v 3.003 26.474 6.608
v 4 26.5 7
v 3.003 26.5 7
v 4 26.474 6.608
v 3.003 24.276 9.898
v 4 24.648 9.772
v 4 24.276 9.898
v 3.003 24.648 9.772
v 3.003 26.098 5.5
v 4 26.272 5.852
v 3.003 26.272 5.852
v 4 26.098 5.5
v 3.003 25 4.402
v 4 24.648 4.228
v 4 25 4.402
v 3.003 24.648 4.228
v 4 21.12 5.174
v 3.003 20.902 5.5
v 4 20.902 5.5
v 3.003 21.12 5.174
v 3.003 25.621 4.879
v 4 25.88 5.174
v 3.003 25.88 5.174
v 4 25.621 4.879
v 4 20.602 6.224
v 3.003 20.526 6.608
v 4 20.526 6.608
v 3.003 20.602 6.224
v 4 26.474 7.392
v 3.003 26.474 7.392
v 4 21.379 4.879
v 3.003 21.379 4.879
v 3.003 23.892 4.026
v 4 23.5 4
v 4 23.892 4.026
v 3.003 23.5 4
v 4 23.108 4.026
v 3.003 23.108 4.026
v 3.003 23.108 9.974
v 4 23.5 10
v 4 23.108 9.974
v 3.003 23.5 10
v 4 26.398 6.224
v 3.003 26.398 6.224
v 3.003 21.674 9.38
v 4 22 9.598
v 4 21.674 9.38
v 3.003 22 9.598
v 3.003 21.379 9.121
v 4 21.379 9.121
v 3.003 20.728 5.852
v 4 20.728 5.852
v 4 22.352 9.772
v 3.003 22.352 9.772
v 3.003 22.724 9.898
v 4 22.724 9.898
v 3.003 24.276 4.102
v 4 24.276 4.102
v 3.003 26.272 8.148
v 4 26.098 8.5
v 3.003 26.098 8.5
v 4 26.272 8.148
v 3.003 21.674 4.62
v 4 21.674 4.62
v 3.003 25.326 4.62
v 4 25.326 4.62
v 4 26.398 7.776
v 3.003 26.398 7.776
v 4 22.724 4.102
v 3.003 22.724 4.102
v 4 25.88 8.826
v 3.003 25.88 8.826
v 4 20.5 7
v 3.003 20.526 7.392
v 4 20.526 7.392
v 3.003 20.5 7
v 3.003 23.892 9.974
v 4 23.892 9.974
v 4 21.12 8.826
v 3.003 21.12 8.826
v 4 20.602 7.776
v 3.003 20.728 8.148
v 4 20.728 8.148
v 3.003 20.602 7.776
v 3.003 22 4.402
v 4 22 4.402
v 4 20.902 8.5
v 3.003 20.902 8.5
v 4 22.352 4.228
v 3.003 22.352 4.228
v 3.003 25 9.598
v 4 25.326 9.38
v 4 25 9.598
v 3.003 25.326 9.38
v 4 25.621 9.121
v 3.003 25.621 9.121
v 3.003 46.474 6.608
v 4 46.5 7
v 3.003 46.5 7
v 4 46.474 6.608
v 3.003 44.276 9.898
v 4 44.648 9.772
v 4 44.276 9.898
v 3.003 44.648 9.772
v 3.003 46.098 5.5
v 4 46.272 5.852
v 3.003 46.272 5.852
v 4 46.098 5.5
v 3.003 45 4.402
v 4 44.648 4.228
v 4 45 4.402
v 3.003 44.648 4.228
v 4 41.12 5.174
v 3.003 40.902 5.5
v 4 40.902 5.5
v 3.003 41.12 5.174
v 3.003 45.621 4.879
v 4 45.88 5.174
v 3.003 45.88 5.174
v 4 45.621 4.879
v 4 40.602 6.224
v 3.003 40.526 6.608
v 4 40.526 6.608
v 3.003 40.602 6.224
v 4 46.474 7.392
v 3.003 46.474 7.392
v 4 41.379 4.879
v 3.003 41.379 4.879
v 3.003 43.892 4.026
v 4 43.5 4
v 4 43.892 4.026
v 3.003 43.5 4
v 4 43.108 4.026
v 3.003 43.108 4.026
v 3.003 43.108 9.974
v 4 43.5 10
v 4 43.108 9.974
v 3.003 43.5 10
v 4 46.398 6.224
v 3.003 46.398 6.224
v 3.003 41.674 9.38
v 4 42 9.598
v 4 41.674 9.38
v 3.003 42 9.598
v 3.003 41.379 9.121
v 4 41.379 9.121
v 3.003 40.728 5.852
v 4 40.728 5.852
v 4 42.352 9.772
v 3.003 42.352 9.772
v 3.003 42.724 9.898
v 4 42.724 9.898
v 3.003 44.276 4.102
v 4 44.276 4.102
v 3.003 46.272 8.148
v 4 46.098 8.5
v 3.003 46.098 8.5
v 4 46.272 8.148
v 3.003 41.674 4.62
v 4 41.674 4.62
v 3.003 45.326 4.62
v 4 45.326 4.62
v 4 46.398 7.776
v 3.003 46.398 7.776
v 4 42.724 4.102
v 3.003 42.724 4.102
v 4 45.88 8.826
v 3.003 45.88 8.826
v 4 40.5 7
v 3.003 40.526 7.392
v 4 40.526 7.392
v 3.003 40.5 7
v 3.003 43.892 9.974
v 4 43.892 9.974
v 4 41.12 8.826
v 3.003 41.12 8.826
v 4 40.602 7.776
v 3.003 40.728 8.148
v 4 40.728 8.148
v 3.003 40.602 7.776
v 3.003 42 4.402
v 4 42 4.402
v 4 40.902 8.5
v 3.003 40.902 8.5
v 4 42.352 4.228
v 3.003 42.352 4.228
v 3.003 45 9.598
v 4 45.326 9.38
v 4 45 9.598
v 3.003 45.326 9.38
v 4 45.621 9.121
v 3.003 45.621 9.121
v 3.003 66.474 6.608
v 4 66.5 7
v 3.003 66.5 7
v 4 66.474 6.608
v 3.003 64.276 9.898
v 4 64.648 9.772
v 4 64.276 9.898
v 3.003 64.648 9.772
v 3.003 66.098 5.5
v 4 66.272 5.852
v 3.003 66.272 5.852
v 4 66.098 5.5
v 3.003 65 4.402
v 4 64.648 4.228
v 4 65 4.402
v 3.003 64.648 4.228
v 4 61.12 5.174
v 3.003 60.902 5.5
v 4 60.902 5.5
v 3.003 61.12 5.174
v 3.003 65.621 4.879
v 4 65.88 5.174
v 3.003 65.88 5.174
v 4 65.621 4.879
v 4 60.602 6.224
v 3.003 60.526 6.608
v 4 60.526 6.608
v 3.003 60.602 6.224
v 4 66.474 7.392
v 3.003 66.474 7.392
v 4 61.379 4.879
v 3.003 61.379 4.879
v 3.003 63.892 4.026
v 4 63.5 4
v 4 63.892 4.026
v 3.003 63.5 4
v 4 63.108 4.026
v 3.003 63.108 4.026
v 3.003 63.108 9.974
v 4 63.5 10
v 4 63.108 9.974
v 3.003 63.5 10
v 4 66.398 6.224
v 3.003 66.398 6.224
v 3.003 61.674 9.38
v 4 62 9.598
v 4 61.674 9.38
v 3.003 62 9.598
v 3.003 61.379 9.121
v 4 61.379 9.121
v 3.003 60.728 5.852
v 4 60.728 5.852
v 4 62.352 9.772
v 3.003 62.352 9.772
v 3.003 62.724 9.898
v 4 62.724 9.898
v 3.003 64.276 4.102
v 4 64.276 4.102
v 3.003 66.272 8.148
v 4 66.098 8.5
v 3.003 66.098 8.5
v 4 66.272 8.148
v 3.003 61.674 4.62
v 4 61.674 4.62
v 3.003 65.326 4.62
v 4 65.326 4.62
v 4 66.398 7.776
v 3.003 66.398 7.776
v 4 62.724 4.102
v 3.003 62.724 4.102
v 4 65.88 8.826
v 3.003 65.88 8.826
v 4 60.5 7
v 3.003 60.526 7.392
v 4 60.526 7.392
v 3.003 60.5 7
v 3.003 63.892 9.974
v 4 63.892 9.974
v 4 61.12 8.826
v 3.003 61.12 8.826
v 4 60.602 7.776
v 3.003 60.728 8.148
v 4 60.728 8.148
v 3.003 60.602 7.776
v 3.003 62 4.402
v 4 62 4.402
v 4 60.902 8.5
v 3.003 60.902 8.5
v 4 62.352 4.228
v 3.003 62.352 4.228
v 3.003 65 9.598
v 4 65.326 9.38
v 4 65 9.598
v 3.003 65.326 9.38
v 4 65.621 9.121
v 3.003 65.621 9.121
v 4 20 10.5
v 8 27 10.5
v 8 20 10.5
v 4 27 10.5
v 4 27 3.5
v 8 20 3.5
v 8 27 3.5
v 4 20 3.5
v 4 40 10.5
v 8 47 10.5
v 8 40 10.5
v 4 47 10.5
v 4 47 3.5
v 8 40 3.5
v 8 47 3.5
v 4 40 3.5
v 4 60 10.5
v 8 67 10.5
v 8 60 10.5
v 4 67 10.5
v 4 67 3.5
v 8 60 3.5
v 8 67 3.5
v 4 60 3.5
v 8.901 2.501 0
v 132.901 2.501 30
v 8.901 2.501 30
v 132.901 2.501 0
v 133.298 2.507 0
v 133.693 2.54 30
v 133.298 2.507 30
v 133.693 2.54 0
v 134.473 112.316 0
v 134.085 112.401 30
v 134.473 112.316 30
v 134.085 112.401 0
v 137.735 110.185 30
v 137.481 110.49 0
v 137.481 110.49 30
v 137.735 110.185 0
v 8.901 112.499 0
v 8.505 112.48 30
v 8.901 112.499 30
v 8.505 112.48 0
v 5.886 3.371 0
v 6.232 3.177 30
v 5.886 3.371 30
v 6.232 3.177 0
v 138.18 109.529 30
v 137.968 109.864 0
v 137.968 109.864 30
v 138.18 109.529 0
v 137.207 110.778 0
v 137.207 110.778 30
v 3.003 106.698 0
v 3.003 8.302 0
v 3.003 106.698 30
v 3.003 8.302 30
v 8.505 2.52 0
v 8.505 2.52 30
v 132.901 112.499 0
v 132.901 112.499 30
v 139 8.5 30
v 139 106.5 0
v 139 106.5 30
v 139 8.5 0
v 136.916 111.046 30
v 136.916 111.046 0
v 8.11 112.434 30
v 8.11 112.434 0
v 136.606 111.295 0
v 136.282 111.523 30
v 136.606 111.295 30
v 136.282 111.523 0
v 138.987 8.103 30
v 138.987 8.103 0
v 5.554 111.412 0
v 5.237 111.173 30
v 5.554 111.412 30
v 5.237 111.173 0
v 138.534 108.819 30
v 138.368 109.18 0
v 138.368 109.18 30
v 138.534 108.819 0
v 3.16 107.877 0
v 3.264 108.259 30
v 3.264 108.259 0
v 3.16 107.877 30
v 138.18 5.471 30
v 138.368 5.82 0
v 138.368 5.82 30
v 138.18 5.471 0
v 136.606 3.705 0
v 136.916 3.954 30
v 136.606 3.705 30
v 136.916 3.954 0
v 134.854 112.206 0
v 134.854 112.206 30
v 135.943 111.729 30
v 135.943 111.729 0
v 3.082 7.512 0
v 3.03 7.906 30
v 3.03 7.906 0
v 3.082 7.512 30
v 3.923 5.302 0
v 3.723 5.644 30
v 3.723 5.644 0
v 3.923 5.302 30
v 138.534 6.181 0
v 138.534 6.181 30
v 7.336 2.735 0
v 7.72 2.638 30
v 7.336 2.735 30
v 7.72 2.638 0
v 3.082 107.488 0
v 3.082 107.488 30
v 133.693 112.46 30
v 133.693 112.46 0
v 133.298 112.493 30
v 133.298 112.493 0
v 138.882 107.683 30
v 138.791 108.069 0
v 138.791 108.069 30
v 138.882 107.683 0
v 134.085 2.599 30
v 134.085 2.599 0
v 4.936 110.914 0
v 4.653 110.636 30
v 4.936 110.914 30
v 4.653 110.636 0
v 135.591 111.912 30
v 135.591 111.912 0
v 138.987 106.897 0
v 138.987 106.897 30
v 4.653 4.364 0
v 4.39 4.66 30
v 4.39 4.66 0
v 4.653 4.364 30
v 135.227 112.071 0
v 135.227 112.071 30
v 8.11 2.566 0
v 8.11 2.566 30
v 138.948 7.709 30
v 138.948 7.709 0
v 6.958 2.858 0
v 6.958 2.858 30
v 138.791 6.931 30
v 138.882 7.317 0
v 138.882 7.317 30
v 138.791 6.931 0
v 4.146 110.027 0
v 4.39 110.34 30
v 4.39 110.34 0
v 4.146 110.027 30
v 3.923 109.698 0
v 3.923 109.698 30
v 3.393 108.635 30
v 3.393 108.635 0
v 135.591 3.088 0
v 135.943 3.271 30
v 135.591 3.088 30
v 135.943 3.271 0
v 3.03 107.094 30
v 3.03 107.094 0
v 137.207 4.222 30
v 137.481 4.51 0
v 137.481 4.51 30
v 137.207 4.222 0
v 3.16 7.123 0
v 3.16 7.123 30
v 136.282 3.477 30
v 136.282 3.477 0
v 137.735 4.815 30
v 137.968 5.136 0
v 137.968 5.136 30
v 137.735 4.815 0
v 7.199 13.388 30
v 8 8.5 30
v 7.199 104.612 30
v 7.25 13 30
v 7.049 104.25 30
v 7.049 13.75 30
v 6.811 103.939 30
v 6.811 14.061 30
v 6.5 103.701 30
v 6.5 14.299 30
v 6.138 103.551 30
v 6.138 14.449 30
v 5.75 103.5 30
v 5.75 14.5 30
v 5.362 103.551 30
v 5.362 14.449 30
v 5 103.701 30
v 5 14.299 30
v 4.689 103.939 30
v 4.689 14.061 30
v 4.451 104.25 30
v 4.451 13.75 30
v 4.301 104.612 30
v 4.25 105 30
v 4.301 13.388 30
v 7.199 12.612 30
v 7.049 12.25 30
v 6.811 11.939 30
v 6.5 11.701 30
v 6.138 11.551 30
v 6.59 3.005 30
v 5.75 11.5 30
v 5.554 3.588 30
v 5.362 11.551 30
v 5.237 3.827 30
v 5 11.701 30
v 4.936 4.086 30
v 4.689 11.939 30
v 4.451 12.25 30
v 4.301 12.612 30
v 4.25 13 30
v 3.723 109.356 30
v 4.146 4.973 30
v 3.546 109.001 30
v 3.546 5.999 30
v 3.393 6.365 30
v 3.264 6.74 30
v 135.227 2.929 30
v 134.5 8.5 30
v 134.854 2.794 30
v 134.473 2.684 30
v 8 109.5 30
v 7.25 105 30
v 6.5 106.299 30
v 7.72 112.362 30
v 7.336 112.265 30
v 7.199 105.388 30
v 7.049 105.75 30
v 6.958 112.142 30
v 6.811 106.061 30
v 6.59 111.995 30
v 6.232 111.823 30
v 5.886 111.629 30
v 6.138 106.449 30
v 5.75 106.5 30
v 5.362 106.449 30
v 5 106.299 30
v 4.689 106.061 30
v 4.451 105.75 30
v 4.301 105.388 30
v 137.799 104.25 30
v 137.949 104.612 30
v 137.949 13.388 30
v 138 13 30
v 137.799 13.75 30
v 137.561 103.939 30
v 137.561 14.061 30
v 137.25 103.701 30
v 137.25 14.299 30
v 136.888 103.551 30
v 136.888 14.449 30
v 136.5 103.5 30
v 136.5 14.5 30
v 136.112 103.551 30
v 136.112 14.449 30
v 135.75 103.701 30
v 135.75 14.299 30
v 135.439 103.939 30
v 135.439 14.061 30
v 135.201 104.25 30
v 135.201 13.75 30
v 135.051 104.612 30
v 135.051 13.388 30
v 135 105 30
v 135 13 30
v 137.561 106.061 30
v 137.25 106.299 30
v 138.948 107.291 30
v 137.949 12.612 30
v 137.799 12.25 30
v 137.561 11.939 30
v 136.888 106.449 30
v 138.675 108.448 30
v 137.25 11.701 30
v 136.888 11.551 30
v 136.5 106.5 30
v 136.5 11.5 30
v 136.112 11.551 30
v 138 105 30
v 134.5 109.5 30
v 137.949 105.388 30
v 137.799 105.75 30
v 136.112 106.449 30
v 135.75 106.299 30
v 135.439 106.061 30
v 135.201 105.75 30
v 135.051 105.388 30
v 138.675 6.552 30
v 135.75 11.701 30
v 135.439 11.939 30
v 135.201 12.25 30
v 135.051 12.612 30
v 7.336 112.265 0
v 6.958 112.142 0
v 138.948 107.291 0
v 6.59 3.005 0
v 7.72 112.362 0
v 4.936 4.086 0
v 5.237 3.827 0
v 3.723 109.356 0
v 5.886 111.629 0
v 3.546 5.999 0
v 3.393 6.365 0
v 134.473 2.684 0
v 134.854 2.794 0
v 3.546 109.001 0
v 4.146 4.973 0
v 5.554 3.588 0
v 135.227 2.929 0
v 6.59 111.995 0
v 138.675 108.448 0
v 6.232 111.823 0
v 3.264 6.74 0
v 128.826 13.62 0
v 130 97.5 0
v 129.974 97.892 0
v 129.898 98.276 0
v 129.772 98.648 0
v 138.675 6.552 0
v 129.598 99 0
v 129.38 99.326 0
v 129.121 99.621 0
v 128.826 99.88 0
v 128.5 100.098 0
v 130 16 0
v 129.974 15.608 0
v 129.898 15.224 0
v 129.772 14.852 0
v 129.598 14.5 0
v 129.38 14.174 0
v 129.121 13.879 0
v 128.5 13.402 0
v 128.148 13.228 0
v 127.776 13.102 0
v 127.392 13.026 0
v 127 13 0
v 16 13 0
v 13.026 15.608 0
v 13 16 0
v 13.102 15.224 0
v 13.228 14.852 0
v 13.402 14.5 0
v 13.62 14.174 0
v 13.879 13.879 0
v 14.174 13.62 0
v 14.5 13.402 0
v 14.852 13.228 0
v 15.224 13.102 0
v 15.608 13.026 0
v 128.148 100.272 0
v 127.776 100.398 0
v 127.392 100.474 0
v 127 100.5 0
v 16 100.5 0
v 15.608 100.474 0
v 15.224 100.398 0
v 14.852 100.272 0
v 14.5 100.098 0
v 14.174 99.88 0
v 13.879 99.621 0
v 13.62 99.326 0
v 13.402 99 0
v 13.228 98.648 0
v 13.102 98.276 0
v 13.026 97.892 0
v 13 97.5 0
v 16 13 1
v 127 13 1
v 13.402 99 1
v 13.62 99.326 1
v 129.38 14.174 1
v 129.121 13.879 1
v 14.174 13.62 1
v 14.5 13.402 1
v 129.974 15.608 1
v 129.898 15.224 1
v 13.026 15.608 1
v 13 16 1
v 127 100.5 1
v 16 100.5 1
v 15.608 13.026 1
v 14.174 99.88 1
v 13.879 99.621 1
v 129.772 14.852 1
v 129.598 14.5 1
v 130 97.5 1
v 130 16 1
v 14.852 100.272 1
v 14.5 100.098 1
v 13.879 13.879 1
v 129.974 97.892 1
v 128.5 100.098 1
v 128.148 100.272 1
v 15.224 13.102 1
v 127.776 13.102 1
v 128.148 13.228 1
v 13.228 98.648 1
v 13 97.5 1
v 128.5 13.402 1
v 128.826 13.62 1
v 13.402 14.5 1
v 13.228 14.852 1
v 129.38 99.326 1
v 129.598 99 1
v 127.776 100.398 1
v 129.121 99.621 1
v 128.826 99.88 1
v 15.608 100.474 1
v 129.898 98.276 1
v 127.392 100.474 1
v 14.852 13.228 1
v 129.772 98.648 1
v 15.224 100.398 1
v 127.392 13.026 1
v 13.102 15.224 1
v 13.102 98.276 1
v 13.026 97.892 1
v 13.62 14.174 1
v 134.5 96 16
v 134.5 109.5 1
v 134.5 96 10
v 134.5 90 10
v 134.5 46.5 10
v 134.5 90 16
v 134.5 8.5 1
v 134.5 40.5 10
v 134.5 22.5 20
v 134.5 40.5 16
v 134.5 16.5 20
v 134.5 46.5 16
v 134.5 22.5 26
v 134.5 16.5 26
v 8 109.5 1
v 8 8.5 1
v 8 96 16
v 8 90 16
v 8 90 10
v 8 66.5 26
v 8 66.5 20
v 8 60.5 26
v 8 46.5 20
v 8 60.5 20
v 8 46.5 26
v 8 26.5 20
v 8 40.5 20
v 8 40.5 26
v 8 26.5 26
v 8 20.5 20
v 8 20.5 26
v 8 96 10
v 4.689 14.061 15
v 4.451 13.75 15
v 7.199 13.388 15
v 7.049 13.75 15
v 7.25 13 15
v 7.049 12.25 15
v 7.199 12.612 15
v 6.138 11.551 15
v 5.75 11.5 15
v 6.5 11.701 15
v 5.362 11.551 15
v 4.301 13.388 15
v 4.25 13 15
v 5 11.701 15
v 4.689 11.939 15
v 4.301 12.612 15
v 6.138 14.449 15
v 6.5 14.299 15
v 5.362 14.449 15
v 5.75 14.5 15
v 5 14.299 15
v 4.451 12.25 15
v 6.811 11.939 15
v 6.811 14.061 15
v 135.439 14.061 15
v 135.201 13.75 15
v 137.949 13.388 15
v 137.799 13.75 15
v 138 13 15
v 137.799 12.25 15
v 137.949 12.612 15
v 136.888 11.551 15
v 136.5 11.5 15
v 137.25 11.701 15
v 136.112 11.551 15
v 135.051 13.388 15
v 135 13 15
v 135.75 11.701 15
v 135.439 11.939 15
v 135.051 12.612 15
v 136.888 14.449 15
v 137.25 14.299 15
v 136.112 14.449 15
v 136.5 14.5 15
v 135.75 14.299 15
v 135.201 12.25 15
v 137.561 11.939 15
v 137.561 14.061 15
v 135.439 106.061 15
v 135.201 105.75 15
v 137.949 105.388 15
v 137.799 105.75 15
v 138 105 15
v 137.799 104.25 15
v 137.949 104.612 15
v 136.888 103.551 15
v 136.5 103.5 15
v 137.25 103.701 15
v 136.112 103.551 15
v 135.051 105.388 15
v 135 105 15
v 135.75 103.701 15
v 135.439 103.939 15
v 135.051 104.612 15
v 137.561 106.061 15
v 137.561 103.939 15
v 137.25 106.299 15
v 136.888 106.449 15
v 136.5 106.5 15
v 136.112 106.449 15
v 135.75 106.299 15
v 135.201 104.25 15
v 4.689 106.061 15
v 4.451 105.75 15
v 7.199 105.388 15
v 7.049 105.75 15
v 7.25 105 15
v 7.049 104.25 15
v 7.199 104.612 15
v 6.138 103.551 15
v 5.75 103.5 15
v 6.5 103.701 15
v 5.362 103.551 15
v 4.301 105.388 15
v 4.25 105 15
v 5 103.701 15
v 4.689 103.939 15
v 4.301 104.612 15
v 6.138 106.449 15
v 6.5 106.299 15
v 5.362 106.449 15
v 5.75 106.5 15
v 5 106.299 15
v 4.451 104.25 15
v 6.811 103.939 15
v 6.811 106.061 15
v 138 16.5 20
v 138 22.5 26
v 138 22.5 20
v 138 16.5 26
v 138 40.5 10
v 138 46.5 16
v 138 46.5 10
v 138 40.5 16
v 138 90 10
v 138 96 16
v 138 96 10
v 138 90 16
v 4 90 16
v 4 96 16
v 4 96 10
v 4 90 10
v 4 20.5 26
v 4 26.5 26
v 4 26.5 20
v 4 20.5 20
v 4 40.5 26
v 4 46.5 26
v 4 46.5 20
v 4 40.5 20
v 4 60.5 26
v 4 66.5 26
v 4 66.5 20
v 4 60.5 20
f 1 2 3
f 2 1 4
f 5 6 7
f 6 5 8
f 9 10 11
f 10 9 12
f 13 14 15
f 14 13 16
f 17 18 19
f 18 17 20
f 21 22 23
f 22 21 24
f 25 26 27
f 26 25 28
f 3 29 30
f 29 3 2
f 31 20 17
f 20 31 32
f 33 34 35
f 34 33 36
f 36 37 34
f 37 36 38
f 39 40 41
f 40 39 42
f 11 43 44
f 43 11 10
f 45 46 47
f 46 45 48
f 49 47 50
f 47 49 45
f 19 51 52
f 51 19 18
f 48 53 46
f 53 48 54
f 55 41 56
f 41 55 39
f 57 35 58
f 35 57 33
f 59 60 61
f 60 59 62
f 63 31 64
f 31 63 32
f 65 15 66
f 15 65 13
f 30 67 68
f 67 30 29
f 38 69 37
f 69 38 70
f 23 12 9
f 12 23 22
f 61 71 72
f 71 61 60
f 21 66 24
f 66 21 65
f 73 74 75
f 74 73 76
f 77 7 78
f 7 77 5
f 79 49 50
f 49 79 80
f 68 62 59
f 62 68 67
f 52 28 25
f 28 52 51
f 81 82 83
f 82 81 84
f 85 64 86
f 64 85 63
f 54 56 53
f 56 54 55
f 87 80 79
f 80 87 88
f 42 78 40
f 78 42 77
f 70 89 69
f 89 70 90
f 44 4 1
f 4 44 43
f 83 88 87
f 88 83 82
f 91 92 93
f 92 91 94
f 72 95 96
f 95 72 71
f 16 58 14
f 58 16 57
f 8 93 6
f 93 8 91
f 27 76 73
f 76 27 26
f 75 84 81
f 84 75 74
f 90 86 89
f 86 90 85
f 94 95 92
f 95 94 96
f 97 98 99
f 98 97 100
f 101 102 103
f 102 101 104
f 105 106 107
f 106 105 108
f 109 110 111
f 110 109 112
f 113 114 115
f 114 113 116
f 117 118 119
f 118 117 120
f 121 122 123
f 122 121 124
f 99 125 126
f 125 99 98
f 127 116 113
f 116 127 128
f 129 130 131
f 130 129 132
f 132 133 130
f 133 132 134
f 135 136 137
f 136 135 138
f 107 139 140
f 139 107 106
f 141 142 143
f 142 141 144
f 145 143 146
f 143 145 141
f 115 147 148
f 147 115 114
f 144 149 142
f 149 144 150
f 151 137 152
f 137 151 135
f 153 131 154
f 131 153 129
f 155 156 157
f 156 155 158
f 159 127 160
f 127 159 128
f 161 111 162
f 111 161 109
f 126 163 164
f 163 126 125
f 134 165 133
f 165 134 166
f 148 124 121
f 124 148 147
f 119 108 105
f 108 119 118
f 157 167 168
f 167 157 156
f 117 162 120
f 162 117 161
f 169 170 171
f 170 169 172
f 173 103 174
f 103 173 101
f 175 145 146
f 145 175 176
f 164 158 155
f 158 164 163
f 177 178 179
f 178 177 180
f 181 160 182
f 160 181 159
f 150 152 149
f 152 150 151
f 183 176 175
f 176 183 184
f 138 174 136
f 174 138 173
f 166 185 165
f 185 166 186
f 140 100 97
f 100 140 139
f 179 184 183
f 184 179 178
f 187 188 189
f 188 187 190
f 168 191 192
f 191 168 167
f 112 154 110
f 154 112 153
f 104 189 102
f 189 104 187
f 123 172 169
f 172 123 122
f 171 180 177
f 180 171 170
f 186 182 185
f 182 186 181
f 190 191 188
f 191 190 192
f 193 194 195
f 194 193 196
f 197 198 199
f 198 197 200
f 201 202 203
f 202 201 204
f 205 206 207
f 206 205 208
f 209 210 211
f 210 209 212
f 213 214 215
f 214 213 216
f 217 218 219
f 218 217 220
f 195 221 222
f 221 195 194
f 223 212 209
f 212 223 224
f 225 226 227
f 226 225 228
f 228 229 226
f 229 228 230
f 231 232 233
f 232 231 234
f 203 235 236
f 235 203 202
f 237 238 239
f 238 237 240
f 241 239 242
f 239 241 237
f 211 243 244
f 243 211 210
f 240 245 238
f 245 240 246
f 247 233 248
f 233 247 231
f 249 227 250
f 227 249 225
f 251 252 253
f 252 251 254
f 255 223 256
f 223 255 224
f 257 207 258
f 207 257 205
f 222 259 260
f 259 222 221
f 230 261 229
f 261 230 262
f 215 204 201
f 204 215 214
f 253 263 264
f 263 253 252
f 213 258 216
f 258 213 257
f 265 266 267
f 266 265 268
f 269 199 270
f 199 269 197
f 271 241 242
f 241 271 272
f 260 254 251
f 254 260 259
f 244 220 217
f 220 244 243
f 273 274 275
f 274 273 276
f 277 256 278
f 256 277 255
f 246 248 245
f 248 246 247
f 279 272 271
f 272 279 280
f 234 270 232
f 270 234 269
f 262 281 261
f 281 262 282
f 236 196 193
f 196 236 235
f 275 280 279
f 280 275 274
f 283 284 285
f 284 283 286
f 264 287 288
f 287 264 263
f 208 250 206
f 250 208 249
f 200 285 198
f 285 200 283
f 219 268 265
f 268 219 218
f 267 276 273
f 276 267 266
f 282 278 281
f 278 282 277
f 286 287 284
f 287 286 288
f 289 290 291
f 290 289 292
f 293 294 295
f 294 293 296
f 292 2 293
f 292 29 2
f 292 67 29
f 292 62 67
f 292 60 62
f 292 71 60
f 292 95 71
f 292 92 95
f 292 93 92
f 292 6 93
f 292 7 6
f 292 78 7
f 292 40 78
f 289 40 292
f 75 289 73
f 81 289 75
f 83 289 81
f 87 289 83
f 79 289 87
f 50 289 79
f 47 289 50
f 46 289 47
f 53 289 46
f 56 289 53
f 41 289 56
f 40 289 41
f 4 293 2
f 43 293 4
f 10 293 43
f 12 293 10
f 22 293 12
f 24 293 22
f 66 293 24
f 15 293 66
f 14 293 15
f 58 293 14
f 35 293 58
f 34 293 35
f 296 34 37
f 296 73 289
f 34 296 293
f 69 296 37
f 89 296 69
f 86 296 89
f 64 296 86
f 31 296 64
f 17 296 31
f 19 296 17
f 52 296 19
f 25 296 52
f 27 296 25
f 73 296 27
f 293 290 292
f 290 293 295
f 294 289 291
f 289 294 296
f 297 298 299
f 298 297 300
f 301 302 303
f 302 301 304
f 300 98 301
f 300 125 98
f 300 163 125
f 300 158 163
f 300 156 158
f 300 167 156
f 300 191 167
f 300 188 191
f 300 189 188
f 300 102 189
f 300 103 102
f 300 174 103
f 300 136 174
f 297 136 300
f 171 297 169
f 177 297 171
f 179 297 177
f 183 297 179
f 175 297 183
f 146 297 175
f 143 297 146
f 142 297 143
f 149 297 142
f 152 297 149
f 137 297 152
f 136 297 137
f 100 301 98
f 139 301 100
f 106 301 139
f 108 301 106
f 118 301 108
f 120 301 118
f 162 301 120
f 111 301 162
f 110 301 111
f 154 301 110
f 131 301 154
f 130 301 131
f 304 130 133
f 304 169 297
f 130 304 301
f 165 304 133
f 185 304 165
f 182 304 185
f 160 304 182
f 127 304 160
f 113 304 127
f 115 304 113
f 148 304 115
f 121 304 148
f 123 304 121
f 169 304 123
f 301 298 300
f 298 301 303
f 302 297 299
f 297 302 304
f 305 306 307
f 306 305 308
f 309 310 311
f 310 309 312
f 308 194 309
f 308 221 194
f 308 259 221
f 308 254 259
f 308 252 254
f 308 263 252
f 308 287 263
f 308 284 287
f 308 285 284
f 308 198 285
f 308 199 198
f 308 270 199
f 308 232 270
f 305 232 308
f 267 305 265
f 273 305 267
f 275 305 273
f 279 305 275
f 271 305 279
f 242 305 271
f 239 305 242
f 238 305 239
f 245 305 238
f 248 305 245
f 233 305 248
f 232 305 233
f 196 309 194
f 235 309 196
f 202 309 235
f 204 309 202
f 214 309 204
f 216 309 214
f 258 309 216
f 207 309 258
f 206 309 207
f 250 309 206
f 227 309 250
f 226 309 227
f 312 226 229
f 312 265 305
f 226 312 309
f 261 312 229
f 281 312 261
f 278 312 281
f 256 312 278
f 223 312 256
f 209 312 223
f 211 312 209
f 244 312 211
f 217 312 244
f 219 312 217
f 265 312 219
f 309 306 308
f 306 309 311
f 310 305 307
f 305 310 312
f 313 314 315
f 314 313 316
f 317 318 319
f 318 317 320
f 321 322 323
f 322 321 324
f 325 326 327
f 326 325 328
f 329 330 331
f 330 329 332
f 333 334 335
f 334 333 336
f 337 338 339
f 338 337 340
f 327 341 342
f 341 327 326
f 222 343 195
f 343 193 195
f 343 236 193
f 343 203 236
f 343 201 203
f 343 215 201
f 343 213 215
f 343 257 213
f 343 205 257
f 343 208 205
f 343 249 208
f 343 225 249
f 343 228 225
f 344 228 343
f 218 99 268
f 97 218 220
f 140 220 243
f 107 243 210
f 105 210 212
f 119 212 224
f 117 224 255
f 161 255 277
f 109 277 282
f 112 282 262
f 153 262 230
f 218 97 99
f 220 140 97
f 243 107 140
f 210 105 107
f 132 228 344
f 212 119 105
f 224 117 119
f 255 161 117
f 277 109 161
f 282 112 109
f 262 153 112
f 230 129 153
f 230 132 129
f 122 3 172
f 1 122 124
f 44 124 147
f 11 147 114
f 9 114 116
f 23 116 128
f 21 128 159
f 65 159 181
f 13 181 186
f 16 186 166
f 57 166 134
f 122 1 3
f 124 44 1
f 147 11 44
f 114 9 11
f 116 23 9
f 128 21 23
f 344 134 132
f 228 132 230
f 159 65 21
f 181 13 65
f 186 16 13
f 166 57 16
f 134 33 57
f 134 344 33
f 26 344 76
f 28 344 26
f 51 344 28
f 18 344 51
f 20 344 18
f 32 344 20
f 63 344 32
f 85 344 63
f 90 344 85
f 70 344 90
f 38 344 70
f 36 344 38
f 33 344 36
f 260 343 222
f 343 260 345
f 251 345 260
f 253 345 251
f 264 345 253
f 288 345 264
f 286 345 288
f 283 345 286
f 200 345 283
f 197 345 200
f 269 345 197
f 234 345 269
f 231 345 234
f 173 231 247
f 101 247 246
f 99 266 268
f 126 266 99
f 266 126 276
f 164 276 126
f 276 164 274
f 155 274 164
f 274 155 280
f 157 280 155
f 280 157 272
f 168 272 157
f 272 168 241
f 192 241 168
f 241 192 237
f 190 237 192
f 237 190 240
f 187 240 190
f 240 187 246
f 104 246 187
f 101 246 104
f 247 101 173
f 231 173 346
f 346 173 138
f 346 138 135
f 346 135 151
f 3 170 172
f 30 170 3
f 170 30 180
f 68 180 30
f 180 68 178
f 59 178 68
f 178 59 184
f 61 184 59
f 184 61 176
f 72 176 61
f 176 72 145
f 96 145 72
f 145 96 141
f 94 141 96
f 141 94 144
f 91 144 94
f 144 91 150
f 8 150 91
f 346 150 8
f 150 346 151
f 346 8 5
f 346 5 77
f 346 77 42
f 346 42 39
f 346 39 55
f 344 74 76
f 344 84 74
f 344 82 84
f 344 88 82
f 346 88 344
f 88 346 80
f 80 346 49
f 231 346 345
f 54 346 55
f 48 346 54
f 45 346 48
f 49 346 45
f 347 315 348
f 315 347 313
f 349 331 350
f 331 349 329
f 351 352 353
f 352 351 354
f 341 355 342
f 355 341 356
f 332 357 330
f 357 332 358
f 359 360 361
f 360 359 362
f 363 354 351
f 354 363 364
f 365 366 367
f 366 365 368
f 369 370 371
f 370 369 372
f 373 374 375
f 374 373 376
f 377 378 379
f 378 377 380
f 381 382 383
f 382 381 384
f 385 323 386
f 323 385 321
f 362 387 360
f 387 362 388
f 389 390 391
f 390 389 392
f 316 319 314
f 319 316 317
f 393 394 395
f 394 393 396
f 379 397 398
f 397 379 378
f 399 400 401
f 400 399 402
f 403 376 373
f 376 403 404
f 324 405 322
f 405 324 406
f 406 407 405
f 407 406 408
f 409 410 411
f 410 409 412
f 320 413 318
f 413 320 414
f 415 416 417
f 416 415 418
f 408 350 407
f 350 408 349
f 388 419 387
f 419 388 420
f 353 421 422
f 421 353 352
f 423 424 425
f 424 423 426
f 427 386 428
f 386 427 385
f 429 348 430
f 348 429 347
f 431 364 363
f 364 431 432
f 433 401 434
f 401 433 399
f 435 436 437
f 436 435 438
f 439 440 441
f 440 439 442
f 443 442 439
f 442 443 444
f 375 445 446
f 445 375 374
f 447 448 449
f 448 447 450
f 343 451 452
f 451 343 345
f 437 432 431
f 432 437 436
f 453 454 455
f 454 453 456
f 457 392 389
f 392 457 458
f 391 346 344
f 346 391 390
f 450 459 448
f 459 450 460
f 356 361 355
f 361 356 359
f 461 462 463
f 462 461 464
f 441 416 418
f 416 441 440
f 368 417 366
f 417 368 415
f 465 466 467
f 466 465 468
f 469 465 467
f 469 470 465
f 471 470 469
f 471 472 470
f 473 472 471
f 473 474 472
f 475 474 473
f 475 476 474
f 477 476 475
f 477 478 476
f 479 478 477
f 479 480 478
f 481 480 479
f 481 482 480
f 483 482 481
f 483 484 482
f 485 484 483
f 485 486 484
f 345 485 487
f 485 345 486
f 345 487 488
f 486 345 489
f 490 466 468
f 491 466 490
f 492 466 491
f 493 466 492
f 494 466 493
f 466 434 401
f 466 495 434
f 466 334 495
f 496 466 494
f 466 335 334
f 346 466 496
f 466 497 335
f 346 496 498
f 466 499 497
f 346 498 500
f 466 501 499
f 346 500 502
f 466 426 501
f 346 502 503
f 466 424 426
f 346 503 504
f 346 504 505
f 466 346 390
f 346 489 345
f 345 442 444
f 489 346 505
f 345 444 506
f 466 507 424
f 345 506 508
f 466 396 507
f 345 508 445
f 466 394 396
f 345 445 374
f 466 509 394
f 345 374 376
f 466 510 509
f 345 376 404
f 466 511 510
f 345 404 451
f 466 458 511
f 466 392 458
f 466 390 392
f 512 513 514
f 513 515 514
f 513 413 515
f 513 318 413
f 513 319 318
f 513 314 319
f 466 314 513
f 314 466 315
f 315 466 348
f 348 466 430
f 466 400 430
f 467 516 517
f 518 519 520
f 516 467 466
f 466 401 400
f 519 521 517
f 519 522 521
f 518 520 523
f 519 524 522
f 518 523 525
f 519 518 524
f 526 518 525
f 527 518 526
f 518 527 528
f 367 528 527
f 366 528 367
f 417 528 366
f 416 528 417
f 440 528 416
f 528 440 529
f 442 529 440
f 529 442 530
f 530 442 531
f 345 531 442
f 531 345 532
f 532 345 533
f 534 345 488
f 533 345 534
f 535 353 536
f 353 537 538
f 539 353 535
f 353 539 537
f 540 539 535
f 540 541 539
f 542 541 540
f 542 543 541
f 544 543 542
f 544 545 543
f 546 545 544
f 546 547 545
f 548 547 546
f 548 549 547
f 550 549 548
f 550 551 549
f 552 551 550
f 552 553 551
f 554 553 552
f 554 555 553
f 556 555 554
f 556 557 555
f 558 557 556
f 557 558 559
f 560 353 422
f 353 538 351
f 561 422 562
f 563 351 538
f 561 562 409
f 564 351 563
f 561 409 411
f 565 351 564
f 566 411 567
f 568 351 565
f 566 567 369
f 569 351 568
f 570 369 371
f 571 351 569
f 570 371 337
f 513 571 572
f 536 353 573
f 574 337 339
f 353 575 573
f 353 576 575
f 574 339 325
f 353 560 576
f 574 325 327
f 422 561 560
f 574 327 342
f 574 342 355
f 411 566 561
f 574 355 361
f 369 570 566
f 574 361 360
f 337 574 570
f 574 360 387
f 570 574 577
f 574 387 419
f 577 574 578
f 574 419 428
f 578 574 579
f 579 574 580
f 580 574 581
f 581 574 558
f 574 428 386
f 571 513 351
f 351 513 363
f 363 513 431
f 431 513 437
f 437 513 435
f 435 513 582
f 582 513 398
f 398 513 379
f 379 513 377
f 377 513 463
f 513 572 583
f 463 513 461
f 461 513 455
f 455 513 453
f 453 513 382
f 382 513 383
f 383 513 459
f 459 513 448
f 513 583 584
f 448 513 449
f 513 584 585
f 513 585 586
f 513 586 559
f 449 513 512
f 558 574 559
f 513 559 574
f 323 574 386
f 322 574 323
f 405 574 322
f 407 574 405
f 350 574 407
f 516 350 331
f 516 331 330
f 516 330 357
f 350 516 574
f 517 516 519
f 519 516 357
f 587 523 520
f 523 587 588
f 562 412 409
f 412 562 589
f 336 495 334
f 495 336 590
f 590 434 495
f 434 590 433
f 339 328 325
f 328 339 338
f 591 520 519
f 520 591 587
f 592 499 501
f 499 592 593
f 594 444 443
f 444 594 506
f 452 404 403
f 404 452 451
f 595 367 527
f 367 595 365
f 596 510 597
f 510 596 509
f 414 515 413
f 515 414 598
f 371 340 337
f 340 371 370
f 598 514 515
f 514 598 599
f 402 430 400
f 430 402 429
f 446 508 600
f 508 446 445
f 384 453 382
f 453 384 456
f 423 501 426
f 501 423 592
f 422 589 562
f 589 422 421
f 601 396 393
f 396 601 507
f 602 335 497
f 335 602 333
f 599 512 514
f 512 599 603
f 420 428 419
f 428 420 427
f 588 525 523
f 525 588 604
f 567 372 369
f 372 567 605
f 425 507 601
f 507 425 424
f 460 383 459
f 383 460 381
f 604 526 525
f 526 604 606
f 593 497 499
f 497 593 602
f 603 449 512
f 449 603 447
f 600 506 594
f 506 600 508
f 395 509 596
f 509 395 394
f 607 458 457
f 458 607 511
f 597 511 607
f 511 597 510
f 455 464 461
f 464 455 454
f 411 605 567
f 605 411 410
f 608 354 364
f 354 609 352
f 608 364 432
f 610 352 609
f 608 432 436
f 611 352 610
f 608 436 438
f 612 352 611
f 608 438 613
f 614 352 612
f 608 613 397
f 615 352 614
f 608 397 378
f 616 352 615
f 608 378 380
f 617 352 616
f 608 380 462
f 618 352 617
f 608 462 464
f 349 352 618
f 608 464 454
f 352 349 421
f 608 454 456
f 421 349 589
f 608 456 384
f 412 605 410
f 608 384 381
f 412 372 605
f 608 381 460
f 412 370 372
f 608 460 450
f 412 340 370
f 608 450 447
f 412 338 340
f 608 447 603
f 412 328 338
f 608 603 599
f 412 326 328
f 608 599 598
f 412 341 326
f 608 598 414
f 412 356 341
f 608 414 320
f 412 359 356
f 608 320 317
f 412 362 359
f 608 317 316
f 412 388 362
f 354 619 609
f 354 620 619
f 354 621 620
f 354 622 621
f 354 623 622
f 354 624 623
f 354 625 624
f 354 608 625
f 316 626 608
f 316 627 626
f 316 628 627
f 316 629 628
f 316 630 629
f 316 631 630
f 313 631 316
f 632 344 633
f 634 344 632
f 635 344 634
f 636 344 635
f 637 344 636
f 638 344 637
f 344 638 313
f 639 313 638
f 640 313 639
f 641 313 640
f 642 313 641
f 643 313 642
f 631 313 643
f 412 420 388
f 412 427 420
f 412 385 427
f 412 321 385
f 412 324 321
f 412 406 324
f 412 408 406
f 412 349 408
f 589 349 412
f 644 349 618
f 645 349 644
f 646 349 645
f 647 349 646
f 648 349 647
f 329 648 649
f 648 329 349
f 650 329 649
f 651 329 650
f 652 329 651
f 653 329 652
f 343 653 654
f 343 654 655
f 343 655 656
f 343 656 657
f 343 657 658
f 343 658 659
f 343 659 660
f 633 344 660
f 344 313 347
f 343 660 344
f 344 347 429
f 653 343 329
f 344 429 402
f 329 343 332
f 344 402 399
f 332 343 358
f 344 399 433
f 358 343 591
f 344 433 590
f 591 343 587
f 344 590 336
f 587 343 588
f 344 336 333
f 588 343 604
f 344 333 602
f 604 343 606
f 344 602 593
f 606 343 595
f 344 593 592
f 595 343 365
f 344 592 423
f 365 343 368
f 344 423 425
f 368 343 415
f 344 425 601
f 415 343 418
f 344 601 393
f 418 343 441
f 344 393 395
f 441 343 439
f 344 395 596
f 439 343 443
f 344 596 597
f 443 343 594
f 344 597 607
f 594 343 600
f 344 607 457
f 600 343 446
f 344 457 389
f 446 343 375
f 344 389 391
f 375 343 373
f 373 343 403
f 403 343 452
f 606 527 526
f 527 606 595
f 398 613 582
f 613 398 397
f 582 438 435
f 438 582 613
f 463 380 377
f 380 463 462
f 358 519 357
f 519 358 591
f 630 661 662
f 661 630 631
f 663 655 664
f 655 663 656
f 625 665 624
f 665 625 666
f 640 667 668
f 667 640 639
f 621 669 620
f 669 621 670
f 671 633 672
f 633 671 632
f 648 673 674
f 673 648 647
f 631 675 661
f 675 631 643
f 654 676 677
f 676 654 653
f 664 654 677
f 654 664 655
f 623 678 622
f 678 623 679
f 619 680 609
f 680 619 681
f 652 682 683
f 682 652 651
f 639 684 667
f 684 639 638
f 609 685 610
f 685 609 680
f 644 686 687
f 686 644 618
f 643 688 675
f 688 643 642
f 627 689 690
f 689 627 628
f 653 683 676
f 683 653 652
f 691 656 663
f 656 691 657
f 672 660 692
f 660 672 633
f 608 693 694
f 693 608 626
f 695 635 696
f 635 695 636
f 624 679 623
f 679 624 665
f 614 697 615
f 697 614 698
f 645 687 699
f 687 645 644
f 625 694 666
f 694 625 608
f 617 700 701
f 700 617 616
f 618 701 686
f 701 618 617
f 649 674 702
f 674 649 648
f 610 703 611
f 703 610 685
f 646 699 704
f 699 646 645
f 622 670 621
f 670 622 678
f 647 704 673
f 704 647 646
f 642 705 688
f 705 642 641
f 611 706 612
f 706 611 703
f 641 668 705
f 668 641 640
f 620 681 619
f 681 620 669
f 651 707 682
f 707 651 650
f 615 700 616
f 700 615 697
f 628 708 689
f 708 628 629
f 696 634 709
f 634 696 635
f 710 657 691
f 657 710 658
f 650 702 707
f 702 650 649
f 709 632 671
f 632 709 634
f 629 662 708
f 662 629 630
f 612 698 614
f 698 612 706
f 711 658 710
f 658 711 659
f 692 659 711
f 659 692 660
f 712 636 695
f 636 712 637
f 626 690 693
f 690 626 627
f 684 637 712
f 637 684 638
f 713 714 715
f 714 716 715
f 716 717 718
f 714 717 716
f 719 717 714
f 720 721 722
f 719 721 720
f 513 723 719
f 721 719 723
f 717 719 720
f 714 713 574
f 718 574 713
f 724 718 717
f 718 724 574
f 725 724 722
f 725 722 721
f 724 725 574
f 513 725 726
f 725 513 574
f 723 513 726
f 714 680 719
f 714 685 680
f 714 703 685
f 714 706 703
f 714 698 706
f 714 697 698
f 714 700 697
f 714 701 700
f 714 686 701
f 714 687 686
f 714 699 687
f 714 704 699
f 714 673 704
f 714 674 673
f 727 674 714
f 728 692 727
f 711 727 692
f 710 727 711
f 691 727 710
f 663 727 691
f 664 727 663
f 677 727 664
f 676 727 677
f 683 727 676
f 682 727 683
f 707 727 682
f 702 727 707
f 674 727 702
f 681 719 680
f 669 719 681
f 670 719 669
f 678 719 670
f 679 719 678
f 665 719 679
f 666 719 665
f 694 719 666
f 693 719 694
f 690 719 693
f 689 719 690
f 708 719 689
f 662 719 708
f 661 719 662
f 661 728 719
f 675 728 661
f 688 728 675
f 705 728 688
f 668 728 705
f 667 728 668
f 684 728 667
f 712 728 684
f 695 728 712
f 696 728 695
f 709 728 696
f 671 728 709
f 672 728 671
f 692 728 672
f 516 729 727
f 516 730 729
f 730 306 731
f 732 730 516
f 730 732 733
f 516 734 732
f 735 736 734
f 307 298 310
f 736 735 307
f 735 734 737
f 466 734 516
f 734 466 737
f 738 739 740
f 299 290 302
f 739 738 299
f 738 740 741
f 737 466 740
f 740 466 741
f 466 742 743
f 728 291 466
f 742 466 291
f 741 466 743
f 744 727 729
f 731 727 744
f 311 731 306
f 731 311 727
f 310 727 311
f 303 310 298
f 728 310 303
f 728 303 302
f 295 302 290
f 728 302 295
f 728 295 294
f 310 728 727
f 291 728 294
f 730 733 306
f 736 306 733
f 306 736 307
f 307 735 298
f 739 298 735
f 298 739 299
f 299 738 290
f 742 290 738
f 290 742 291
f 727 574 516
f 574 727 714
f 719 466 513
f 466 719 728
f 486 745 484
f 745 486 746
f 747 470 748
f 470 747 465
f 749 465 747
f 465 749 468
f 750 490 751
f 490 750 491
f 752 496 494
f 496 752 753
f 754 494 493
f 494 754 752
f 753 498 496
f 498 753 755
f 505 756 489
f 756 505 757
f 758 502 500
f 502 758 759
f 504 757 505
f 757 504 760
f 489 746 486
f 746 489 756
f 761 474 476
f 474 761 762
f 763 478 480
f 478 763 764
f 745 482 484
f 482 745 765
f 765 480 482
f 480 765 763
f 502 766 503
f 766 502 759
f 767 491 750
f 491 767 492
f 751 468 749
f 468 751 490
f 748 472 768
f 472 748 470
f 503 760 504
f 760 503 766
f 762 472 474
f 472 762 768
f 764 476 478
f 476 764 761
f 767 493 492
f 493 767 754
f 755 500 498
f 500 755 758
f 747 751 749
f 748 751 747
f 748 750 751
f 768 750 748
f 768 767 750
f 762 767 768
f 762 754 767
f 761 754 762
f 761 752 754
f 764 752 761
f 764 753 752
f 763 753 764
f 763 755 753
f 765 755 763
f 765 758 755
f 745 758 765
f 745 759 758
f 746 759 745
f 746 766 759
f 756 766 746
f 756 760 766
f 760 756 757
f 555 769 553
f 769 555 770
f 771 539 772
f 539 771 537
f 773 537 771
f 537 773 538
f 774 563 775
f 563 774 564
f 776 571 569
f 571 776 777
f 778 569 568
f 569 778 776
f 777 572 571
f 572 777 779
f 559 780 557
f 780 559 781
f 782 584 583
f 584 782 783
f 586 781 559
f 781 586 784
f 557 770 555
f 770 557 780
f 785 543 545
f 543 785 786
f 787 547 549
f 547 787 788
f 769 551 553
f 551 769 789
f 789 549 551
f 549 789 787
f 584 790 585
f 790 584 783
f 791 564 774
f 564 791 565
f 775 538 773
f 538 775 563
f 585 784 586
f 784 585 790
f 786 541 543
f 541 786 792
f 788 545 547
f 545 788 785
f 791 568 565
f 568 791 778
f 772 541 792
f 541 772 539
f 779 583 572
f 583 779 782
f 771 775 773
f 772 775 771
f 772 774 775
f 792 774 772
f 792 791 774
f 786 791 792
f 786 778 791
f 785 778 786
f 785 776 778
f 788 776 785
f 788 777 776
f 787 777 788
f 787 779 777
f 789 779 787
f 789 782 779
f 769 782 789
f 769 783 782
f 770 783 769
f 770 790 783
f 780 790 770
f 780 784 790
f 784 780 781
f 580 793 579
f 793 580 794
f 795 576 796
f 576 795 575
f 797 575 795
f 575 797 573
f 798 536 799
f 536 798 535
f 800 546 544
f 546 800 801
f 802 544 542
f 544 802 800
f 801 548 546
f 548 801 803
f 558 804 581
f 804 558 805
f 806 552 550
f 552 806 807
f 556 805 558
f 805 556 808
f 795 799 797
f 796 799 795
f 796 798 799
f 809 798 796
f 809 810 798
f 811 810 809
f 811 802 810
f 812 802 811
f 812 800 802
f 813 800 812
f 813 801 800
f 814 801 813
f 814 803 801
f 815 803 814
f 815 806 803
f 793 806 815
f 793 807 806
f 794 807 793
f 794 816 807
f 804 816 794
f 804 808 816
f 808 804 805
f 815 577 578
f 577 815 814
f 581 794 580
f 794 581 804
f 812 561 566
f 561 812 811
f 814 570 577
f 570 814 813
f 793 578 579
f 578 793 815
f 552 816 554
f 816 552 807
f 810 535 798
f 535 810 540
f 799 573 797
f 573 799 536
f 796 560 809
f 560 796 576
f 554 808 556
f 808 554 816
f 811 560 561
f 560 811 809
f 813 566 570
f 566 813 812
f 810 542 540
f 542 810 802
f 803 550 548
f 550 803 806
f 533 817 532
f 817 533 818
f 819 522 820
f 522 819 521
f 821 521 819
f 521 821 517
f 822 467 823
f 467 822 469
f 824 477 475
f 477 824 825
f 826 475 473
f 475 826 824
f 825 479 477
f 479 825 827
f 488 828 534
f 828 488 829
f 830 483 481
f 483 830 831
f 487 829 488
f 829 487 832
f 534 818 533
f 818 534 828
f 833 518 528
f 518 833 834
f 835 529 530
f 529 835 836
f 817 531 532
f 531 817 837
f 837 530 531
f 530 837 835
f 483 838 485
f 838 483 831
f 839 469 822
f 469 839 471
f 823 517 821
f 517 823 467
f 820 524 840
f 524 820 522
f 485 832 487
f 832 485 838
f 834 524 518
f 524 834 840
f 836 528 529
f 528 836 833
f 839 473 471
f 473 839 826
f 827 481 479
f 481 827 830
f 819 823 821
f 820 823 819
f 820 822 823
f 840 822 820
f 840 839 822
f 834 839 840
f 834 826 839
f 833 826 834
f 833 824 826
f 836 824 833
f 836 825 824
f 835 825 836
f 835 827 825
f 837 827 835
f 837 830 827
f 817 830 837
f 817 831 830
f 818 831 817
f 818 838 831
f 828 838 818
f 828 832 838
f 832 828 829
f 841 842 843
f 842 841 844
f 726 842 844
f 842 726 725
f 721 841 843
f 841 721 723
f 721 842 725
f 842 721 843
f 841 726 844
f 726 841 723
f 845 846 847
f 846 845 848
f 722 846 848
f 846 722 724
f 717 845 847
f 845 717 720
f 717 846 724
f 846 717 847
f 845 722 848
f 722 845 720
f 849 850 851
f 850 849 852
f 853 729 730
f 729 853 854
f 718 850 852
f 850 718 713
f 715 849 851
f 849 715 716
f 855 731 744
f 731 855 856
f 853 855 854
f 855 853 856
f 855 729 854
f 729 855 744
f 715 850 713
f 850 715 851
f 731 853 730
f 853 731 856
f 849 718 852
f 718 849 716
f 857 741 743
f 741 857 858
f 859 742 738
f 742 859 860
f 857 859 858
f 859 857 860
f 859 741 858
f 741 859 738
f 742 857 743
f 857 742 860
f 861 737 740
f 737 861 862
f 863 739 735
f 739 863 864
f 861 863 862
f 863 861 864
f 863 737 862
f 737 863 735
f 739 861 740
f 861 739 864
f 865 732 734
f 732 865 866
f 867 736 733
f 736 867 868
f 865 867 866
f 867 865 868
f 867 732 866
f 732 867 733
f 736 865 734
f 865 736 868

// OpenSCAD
$fa = 1;
$fs = 0.4;

module rcube(size, radius) {
    hull() {
        translate([radius, radius]) cylinder(r = radius, h = size[2]);
        translate([size[0] - radius, radius]) cylinder(r = radius, h = size[2]);
        translate([size[0] - radius, size[1] - radius]) cylinder(r = radius, h = size[2]);
        translate([radius, size[1] - radius]) cylinder(r = radius, h = size[2]);
    }
}

module epaper_holder() {
    difference() {
        translate([3,8-0.5-5,0]) rcube([136,105+5,30], 6);
        translate([13, 13, -1]) rcube([117, 87.5,35], 3);
        translate([8, 8.5, 1]) cube([126.5, 101,35]);

        translate([5.75,4+9,15]) cylinder(d=3,h=25);
        translate([143-6.5,4+9,15]) cylinder(d=3,h=25);
        translate([143-6.5,118-4-9,15]) cylinder(d=3,h=25);
        translate([5.75,118-4-9,15]) cylinder(d=3,h=25);
    
        translate([131,16.5,20]) cube([3.5+3.5, 6,6]);

        translate([131,6.5+34,10]) cube([3.5+3.5, 6,6]);
        translate([4,90,10]) cube([134, 6,6]);
        
        translate([4,20.5,20]) cube([26, 6,6]);
        translate([4,40.5,20]) cube([26, 6,6]);
        translate([4,60.5,20]) cube([26, 6,6]);
        
        translate([(143-129)/2-30, (118-103)/2, 1]) {
            translate([0,13+3,6]) rotate([0,90,0]) cylinder(h=117,d=6); 
            translate([0,33+3,6]) rotate([0,90,0]) cylinder(h=117,d=6); 
            translate([0,53+3,6]) rotate([0,90,0]) cylinder(h=117,d=6); 
        
        }
        translate([(143-129)/2-4, (118-103)/2, 1]) {
            translate([1,13-0.5,3-0.5]) cube([60,7,7]);
            translate([1,33-0.5,3-0.5]) cube([60,7,7]);
            translate([1,53-0.5,3-0.5]) cube([60,7,7]);
        }
    }
}

epaper_holder();
